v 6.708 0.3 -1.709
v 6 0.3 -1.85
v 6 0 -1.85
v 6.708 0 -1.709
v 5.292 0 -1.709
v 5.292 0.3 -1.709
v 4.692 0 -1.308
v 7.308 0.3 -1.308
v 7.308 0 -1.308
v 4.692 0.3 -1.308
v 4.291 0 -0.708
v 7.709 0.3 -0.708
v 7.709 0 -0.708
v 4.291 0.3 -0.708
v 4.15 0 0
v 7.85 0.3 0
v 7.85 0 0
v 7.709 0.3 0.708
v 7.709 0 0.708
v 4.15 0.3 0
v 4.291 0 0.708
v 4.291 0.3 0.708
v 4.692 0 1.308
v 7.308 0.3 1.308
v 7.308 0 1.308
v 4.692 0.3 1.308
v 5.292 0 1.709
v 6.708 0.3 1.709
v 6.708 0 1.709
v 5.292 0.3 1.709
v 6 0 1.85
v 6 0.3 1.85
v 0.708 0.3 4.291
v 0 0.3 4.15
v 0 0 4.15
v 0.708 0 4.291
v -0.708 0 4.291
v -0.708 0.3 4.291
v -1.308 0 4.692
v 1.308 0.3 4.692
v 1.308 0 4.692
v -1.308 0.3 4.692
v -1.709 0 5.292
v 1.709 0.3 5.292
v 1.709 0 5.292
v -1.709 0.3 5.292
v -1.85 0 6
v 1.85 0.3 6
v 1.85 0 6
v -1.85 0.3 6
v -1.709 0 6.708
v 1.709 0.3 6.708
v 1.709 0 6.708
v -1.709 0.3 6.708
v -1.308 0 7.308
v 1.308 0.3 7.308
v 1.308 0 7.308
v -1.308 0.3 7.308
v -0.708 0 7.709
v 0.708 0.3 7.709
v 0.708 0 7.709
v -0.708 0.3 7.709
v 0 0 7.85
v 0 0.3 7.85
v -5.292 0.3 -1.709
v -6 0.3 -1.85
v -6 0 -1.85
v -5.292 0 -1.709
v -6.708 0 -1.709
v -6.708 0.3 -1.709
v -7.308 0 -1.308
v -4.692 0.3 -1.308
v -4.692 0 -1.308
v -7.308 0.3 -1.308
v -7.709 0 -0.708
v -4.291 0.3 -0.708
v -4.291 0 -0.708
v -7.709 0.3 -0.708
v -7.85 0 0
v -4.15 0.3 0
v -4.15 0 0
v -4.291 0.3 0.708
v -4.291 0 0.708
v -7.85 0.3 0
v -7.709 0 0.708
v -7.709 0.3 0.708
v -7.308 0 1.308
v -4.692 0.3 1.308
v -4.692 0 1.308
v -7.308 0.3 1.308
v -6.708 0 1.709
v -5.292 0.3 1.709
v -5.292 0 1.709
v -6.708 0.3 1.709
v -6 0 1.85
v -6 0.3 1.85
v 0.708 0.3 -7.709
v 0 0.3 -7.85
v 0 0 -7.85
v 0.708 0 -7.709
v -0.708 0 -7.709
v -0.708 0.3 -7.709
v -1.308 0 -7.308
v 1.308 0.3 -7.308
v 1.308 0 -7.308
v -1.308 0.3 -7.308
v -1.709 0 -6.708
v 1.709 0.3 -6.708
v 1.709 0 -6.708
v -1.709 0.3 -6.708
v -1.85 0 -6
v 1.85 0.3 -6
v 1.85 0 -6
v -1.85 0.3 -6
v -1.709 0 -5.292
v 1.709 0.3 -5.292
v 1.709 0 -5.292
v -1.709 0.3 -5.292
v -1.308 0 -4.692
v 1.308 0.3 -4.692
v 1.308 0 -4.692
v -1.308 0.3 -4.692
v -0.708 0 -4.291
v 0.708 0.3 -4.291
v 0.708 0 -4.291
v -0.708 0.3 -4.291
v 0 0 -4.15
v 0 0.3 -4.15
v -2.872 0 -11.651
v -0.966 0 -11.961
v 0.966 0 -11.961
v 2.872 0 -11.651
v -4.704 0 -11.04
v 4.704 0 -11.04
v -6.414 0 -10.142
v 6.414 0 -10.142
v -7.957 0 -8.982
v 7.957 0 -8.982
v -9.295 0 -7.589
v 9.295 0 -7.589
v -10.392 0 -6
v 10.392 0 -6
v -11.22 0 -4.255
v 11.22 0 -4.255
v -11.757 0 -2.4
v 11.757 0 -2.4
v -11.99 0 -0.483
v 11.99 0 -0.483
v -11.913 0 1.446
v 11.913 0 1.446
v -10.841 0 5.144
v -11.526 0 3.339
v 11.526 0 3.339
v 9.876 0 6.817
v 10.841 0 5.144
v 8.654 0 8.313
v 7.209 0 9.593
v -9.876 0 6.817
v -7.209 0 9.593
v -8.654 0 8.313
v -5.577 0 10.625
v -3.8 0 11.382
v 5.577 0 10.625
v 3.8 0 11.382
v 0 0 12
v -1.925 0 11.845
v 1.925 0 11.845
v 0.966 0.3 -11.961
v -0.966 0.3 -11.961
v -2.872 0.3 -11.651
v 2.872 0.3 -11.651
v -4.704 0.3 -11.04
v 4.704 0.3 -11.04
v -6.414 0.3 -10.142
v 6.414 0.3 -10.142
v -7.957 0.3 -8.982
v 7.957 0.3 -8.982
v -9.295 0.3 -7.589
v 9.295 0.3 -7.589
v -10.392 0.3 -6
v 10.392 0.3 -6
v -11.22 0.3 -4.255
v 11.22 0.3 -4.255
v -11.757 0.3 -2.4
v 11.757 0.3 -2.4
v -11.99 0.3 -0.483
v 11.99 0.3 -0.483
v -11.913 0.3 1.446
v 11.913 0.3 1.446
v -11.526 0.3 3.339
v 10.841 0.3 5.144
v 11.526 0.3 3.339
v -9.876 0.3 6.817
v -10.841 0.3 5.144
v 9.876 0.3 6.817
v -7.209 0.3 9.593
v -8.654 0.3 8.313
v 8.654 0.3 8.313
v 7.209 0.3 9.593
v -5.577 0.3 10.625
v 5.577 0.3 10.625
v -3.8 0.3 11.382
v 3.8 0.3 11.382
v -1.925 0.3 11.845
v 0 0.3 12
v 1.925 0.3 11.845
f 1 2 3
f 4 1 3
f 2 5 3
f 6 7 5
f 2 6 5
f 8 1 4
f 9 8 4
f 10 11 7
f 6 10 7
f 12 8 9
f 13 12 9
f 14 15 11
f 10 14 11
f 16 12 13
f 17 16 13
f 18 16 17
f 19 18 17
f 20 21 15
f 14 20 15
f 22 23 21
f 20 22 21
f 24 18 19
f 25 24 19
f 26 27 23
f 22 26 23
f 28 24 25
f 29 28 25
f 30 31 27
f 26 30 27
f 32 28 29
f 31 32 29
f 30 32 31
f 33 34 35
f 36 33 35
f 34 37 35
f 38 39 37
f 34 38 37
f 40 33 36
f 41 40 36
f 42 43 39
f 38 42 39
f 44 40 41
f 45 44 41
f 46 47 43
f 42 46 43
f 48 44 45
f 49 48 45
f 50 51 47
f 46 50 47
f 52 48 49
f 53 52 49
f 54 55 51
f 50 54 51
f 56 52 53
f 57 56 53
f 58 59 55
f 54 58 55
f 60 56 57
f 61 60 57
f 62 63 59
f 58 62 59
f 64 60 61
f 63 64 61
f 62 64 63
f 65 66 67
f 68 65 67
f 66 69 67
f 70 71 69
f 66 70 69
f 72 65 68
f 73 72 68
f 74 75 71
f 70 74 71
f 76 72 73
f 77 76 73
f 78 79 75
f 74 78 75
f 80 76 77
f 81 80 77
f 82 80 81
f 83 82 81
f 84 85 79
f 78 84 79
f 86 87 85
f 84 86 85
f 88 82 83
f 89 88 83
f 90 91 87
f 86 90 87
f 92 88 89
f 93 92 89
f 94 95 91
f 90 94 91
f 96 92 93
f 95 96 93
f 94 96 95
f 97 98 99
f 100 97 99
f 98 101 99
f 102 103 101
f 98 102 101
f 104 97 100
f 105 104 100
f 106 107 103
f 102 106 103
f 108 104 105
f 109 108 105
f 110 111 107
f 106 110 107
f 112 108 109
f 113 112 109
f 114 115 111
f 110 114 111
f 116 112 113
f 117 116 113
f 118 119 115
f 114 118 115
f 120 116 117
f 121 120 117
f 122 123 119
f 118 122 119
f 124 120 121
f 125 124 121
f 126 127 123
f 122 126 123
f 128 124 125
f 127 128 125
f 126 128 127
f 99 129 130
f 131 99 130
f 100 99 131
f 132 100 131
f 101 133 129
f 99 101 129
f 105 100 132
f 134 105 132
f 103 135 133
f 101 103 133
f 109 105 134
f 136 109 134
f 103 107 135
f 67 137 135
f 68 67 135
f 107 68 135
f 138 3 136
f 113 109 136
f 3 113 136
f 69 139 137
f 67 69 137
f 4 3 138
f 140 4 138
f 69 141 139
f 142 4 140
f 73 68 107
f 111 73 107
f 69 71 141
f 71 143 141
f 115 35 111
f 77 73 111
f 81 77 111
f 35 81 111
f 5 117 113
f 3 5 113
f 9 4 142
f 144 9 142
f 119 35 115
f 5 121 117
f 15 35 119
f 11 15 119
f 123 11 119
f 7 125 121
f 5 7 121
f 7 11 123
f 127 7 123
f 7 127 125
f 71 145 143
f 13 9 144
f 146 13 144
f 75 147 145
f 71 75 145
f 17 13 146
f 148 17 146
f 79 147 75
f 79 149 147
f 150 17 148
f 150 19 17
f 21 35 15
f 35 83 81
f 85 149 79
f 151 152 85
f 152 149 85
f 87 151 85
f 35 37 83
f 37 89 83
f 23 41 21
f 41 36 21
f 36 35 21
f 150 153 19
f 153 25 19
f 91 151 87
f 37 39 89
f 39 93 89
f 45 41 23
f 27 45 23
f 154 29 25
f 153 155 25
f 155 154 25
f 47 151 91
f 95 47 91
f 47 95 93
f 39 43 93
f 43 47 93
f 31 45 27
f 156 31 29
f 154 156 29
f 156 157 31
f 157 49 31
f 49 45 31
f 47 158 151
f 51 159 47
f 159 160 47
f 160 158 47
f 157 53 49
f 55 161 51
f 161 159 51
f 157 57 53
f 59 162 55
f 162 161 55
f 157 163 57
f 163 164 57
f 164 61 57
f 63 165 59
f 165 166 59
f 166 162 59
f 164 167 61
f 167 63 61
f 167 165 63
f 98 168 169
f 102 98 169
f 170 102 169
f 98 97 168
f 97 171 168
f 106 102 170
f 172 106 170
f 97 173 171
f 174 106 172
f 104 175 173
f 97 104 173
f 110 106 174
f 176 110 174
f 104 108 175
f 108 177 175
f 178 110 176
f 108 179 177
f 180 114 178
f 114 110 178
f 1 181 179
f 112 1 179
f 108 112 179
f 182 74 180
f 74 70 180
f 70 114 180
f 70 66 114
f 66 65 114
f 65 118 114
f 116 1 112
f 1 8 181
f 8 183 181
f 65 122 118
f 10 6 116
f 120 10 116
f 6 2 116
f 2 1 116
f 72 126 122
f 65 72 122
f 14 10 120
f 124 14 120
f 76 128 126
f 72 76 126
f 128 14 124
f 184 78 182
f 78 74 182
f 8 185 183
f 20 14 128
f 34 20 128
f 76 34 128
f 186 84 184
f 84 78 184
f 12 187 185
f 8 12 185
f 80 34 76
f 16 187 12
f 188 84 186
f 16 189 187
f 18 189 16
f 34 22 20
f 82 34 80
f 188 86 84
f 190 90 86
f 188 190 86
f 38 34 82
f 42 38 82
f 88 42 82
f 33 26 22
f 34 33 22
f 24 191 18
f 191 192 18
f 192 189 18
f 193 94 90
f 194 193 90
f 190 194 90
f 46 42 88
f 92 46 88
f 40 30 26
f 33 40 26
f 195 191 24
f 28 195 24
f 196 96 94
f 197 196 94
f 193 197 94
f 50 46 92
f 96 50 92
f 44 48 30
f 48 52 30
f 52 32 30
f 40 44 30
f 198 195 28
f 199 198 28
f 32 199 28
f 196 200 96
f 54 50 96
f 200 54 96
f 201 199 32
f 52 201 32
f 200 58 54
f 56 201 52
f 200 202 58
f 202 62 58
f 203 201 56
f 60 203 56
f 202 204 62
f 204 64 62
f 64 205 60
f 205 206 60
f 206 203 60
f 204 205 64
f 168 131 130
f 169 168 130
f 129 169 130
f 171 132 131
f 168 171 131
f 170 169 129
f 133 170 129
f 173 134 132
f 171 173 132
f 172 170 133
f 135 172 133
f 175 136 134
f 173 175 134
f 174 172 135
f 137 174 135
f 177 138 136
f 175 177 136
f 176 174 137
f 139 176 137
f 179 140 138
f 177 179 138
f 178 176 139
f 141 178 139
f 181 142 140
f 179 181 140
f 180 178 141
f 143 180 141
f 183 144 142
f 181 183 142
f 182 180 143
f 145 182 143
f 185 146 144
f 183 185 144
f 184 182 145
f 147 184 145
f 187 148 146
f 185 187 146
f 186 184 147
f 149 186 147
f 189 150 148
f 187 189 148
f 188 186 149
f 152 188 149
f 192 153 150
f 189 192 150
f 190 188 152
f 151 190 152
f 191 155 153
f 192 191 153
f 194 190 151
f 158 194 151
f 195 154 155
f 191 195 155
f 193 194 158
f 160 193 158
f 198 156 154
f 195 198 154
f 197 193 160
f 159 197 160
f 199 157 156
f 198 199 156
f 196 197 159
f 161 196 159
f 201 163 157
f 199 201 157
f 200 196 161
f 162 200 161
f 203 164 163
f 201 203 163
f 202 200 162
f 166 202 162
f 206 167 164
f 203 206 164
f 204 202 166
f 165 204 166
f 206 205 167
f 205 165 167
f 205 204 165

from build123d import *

# Parameters (mm, degrees)
SKETCH_1_R          = 9.9
SKETCH_1_R_2        = 1.85
EXTRUDE_1_DEPTH     = 7
SKETCH_2_R          = 12.5
SKETCH_2_R_2        = 1.85
EXTRUDE_2_DEPTH     = 2.5
SKETCH_3_R          = 3.75
EXTRUDE_3_DEPTH     = 6.3
CHAMFER_1_SIZE      = 2
SKETCH_4_R          = 41.5
CUT_EXTRUDE_1_DEPTH = 15.5
EXTRUDE_START       = -0.3
SKETCH_5_R          = 12
SKETCH_5_R_2        = 9.9
EXTRUDE_4_DEPTH     = 0.3


with BuildPart() as part:
    # 草图1 → 凸台-拉伸1 (new body)
    with BuildSketch(Plane(origin=(0, 0, 0), x_dir=(1, 0, 0), z_dir=(0, 1, 0))):
        with Locations(Location((0, 0, 0), (0, 0, 270))):
            Circle(SKETCH_1_R)
        with Locations(Location((6, 0, 0), (0, 0, 270))):
            Circle(SKETCH_1_R_2, mode=Mode.SUBTRACT)
        with Locations(Location((0, -6, 0), (0, 0, 270))):
            Circle(SKETCH_1_R_2, mode=Mode.SUBTRACT)
        with Locations(Location((-6, 0, 0), (0, 0, 270))):
            Circle(SKETCH_1_R_2, mode=Mode.SUBTRACT)
        with Locations(Location((0, 6, 0), (0, 0, 270))):
            Circle(SKETCH_1_R_2, mode=Mode.SUBTRACT)
    extrude(amount=EXTRUDE_1_DEPTH)

    # 草图2 → 凸台-拉伸2 (add)
    with BuildSketch(Plane(origin=(0, 7, 0), x_dir=(1, 0, 0), z_dir=(0, 1, 0))):
        with Locations(Location((0, 0, 0), (0, 0, 270))):
            Circle(SKETCH_2_R)
        with Locations(Location((-6, 0, 0), (0, 0, 270))):
            Circle(SKETCH_2_R_2, mode=Mode.SUBTRACT)
        with Locations(Location((0, -6, 0), (0, 0, 270))):
            Circle(SKETCH_2_R_2, mode=Mode.SUBTRACT)
        with Locations(Location((6, 0, 0), (0, 0, 270))):
            Circle(SKETCH_2_R_2, mode=Mode.SUBTRACT)
        with Locations(Location((0, 6, 0), (0, 0, 270))):
            Circle(SKETCH_2_R_2, mode=Mode.SUBTRACT)
    extrude(amount=EXTRUDE_2_DEPTH)

    # 草图3 → 凸台-拉伸3 (add)
    # profile 1 of 8: a face of its own
    with BuildSketch(Plane(origin=(0, 9.5, 0), x_dir=(1, 0, 0), z_dir=(0, 1, 0))):
        with BuildLine():
            Line((2.25, 0), (-2.25, 0))
            ThreePointArc((-2.25, 0), (-6, -3.75), (-9.75, 0))
            Line((-9.75, 0), (-12.5, 0))
            ThreePointArc((-12.5, 0), (-3.952847075, -11.858541226), (10, -7.5))
            ThreePointArc((10, -7.5), (11.858541226, -3.952847075), (12.5, 0))
            Line((12.5, 0), (9.75, 0))
            ThreePointArc((9.75, 0), (6, -3.75), (2.25, 0))
        make_face()
        with Locations(Location((0, -6, 0), (0, 0, 270))):
            Circle(SKETCH_3_R, mode=Mode.SUBTRACT)
    # profile 2 of 8: a face of its own
    with BuildSketch(Plane(origin=(0, 9.5, 0), x_dir=(1, 0, 0), z_dir=(0, 1, 0))):
        with BuildLine():
            ThreePointArc((-9.75, 0), (-6, 3.75), (-2.25, 0))
            Line((-2.25, 0), (2.25, 0))
            ThreePointArc((2.25, 0), (6, 3.75), (9.75, 0))
            Line((9.75, 0), (12.5, 0))
            ThreePointArc((12.5, 0), (11.858541226, 3.952847075), (10, 7.5))
            ThreePointArc((10, 7.5), (-3.952847075, 11.858541226), (-12.5, 0))
            Line((-12.5, 0), (-9.75, 0))
        make_face()
        with Locations(Location((0, 6, 0), (0, 0, 270))):
            Circle(SKETCH_3_R, mode=Mode.SUBTRACT)
    # profile 3 of 8: a face of its own
    with BuildSketch(Plane(origin=(0, 9.5, 0), x_dir=(1, 0, 0), z_dir=(0, 1, 0))):
        with BuildLine():
            ThreePointArc((10, 7.5), (11.858541226, 3.952847075), (12.5, 0))
            Line((12.5, 0), (25.5, 0))
            ThreePointArc((25.5, 0), (27.696699141, 5.303300859), (33, 7.5))
            Line((33, 7.5), (10, 7.5))
        make_face()
    # profile 4 of 8: a face of its own
    with BuildSketch(Plane(origin=(0, 9.5, 0), x_dir=(1, 0, 0), z_dir=(0, 1, 0))):
        with BuildLine():
            Line((25.5, 0), (12.5, 0))
            ThreePointArc((12.5, 0), (11.858541226, -3.952847075), (10, -7.5))
            Line((10, -7.5), (33, -7.5))
            ThreePointArc((33, -7.5), (27.696699141, -5.303300859), (25.5, 0))
        make_face()
    # profile 5 of 8: a face of its own
    with BuildSketch(Plane(origin=(0, 9.5, 0), x_dir=(1, 0, 0), z_dir=(0, 1, 0))):
        with BuildLine():
            ThreePointArc((33, 7.5), (27.696699141, 5.303300859), (25.5, 0))
            Line((25.5, 0), (28.65, 0))
            ThreePointArc((28.65, 0), (33, 4.35), (37.35, 0))
            Line((37.35, 0), (40.5, 0))
            ThreePointArc((40.5, 0), (38.303300859, 5.303300859), (33, 7.5))
        make_face()
    # profile 6 of 8: a face of its own
    with BuildSketch(Plane(origin=(0, 9.5, 0), x_dir=(1, 0, 0), z_dir=(0, 1, 0))):
        with BuildLine():
            Line((28.65, 0), (25.5, 0))
            ThreePointArc((25.5, 0), (27.696699141, -5.303300859), (33, -7.5))
            ThreePointArc((33, -7.5), (38.303300859, -5.303300859), (40.5, 0))
            Line((40.5, 0), (37.35, 0))
            ThreePointArc((37.35, 0), (33, -4.35), (28.65, 0))
        make_face()
    # profile 7 of 8: a face of its own
    with BuildSketch(Plane(origin=(0, 9.5, 0), x_dir=(1, 0, 0), z_dir=(0, 1, 0))):
        with BuildLine():
            ThreePointArc((33, 7.5), (27.696699141, 5.303300859), (25.5, 0))
            Line((25.5, 0), (28.65, 0))
            ThreePointArc((28.65, 0), (33, 4.35), (37.35, 0))
            Line((37.35, 0), (40.5, 0))
            ThreePointArc((40.5, 0), (38.303300859, 5.303300859), (33, 7.5))
        make_face()
    # profile 8 of 8: a face of its own
    with BuildSketch(Plane(origin=(0, 9.5, 0), x_dir=(1, 0, 0), z_dir=(0, 1, 0))):
        with BuildLine():
            Line((28.65, 0), (25.5, 0))
            ThreePointArc((25.5, 0), (27.696699141, -5.303300859), (33, -7.5))
            ThreePointArc((33, -7.5), (38.303300859, -5.303300859), (40.5, 0))
            Line((40.5, 0), (37.35, 0))
            ThreePointArc((37.35, 0), (33, -4.35), (28.65, 0))
        make_face()
    extrude(amount=EXTRUDE_3_DEPTH)

    # 倒角1
    # the kernel refuses this chamfer: 2 mm, written as the material it adds along each edge
    with BuildSketch(Plane(origin=(0, 9.5, 6), x_dir=(0, 0, 1), z_dir=(-1, 0, 0))) as chamfer_1_piece_1_section:
        Polygon((3.75 - CHAMFER_1_SIZE, 0), (3.75, CHAMFER_1_SIZE), (3.75, 0), align=None)
    chamfer_1_piece_1 = revolve(axis=Axis((0, 9.5, 6), (0, 1, 0)), mode=Mode.PRIVATE)
    chamfer_1_piece_1 = chamfer_1_piece_1 - Plane(origin=(0, 10.553600351, 6), x_dir=(0, 0, 1), z_dir=(0, -1, 0)) * Cylinder(1.85, 15, mode=Mode.PRIVATE)
    add(chamfer_1_piece_1)
    with BuildSketch(Plane(origin=(-6, 9.5, 0), x_dir=(-1, 0, 0), z_dir=(0, 0, 1))) as chamfer_1_piece_2_section:
        Polygon((3.75 - CHAMFER_1_SIZE, 0), (3.75, -CHAMFER_1_SIZE), (3.75, 0), align=None)
    chamfer_1_piece_2 = revolve(axis=Axis((-6, 9.5, 0), (0, -1, 0)), mode=Mode.PRIVATE)
    chamfer_1_piece_2 = chamfer_1_piece_2 - Plane(origin=(-6, 10.553600351, 0), x_dir=(0, 0, 1), z_dir=(0, -1, 0)) * Cylinder(1.85, 15, mode=Mode.PRIVATE)
    add(chamfer_1_piece_2)
    with BuildSketch(Plane(origin=(0, 9.5, -6), x_dir=(0, 0, 1), z_dir=(-1, 0, 0))) as chamfer_1_piece_3_section:
        Polygon((3.75 - CHAMFER_1_SIZE, 0), (3.75, CHAMFER_1_SIZE), (3.75, 0), align=None)
    chamfer_1_piece_3 = revolve(axis=Axis((0, 9.5, -6), (0, 1, 0)), mode=Mode.PRIVATE)
    chamfer_1_piece_3 = chamfer_1_piece_3 - Plane(origin=(0, 10.553600351, -6), x_dir=(0, 0, 1), z_dir=(0, -1, 0)) * Cylinder(1.85, 16, mode=Mode.PRIVATE)
    add(chamfer_1_piece_3)
    with BuildSketch(Plane(origin=(6, 9.5, 0), x_dir=(1, 0, 0), z_dir=(0, 0, -1))) as chamfer_1_piece_4_section:
        Polygon((3.75 - CHAMFER_1_SIZE, 0), (3.75, -CHAMFER_1_SIZE), (3.75, 0), align=None)
    chamfer_1_piece_4 = revolve(axis=Axis((6, 9.5, 0), (0, -1, 0)), mode=Mode.PRIVATE)
    chamfer_1_piece_4 = chamfer_1_piece_4 - Plane(origin=(6, 10.553600351, 0), x_dir=(0, 0, 1), z_dir=(0, -1, 0)) * Cylinder(1.85, 15, mode=Mode.PRIVATE)
    add(chamfer_1_piece_4)

    # 草图4 → 切除-拉伸1 (cut)
    with BuildSketch(Plane(origin=(0, 15.8, 0), x_dir=(1, 0, 0), z_dir=(0, 1, 0))):
        Circle(SKETCH_4_R)
    extrude(amount=-CUT_EXTRUDE_1_DEPTH, mode=Mode.SUBTRACT)

    # 草图5 → 凸台-拉伸4 (add)
    with BuildSketch(Plane(origin=(0, 0.3, 0), x_dir=(1, 0, 0), z_dir=(0, 1, 0)).offset(EXTRUDE_START)):
        with Locations(Location((0, 0, 0), (0, 0, 270))):
            Circle(SKETCH_5_R)
        Circle(SKETCH_5_R_2, mode=Mode.SUBTRACT)
    extrude(amount=EXTRUDE_4_DEPTH)


solid = part.part
